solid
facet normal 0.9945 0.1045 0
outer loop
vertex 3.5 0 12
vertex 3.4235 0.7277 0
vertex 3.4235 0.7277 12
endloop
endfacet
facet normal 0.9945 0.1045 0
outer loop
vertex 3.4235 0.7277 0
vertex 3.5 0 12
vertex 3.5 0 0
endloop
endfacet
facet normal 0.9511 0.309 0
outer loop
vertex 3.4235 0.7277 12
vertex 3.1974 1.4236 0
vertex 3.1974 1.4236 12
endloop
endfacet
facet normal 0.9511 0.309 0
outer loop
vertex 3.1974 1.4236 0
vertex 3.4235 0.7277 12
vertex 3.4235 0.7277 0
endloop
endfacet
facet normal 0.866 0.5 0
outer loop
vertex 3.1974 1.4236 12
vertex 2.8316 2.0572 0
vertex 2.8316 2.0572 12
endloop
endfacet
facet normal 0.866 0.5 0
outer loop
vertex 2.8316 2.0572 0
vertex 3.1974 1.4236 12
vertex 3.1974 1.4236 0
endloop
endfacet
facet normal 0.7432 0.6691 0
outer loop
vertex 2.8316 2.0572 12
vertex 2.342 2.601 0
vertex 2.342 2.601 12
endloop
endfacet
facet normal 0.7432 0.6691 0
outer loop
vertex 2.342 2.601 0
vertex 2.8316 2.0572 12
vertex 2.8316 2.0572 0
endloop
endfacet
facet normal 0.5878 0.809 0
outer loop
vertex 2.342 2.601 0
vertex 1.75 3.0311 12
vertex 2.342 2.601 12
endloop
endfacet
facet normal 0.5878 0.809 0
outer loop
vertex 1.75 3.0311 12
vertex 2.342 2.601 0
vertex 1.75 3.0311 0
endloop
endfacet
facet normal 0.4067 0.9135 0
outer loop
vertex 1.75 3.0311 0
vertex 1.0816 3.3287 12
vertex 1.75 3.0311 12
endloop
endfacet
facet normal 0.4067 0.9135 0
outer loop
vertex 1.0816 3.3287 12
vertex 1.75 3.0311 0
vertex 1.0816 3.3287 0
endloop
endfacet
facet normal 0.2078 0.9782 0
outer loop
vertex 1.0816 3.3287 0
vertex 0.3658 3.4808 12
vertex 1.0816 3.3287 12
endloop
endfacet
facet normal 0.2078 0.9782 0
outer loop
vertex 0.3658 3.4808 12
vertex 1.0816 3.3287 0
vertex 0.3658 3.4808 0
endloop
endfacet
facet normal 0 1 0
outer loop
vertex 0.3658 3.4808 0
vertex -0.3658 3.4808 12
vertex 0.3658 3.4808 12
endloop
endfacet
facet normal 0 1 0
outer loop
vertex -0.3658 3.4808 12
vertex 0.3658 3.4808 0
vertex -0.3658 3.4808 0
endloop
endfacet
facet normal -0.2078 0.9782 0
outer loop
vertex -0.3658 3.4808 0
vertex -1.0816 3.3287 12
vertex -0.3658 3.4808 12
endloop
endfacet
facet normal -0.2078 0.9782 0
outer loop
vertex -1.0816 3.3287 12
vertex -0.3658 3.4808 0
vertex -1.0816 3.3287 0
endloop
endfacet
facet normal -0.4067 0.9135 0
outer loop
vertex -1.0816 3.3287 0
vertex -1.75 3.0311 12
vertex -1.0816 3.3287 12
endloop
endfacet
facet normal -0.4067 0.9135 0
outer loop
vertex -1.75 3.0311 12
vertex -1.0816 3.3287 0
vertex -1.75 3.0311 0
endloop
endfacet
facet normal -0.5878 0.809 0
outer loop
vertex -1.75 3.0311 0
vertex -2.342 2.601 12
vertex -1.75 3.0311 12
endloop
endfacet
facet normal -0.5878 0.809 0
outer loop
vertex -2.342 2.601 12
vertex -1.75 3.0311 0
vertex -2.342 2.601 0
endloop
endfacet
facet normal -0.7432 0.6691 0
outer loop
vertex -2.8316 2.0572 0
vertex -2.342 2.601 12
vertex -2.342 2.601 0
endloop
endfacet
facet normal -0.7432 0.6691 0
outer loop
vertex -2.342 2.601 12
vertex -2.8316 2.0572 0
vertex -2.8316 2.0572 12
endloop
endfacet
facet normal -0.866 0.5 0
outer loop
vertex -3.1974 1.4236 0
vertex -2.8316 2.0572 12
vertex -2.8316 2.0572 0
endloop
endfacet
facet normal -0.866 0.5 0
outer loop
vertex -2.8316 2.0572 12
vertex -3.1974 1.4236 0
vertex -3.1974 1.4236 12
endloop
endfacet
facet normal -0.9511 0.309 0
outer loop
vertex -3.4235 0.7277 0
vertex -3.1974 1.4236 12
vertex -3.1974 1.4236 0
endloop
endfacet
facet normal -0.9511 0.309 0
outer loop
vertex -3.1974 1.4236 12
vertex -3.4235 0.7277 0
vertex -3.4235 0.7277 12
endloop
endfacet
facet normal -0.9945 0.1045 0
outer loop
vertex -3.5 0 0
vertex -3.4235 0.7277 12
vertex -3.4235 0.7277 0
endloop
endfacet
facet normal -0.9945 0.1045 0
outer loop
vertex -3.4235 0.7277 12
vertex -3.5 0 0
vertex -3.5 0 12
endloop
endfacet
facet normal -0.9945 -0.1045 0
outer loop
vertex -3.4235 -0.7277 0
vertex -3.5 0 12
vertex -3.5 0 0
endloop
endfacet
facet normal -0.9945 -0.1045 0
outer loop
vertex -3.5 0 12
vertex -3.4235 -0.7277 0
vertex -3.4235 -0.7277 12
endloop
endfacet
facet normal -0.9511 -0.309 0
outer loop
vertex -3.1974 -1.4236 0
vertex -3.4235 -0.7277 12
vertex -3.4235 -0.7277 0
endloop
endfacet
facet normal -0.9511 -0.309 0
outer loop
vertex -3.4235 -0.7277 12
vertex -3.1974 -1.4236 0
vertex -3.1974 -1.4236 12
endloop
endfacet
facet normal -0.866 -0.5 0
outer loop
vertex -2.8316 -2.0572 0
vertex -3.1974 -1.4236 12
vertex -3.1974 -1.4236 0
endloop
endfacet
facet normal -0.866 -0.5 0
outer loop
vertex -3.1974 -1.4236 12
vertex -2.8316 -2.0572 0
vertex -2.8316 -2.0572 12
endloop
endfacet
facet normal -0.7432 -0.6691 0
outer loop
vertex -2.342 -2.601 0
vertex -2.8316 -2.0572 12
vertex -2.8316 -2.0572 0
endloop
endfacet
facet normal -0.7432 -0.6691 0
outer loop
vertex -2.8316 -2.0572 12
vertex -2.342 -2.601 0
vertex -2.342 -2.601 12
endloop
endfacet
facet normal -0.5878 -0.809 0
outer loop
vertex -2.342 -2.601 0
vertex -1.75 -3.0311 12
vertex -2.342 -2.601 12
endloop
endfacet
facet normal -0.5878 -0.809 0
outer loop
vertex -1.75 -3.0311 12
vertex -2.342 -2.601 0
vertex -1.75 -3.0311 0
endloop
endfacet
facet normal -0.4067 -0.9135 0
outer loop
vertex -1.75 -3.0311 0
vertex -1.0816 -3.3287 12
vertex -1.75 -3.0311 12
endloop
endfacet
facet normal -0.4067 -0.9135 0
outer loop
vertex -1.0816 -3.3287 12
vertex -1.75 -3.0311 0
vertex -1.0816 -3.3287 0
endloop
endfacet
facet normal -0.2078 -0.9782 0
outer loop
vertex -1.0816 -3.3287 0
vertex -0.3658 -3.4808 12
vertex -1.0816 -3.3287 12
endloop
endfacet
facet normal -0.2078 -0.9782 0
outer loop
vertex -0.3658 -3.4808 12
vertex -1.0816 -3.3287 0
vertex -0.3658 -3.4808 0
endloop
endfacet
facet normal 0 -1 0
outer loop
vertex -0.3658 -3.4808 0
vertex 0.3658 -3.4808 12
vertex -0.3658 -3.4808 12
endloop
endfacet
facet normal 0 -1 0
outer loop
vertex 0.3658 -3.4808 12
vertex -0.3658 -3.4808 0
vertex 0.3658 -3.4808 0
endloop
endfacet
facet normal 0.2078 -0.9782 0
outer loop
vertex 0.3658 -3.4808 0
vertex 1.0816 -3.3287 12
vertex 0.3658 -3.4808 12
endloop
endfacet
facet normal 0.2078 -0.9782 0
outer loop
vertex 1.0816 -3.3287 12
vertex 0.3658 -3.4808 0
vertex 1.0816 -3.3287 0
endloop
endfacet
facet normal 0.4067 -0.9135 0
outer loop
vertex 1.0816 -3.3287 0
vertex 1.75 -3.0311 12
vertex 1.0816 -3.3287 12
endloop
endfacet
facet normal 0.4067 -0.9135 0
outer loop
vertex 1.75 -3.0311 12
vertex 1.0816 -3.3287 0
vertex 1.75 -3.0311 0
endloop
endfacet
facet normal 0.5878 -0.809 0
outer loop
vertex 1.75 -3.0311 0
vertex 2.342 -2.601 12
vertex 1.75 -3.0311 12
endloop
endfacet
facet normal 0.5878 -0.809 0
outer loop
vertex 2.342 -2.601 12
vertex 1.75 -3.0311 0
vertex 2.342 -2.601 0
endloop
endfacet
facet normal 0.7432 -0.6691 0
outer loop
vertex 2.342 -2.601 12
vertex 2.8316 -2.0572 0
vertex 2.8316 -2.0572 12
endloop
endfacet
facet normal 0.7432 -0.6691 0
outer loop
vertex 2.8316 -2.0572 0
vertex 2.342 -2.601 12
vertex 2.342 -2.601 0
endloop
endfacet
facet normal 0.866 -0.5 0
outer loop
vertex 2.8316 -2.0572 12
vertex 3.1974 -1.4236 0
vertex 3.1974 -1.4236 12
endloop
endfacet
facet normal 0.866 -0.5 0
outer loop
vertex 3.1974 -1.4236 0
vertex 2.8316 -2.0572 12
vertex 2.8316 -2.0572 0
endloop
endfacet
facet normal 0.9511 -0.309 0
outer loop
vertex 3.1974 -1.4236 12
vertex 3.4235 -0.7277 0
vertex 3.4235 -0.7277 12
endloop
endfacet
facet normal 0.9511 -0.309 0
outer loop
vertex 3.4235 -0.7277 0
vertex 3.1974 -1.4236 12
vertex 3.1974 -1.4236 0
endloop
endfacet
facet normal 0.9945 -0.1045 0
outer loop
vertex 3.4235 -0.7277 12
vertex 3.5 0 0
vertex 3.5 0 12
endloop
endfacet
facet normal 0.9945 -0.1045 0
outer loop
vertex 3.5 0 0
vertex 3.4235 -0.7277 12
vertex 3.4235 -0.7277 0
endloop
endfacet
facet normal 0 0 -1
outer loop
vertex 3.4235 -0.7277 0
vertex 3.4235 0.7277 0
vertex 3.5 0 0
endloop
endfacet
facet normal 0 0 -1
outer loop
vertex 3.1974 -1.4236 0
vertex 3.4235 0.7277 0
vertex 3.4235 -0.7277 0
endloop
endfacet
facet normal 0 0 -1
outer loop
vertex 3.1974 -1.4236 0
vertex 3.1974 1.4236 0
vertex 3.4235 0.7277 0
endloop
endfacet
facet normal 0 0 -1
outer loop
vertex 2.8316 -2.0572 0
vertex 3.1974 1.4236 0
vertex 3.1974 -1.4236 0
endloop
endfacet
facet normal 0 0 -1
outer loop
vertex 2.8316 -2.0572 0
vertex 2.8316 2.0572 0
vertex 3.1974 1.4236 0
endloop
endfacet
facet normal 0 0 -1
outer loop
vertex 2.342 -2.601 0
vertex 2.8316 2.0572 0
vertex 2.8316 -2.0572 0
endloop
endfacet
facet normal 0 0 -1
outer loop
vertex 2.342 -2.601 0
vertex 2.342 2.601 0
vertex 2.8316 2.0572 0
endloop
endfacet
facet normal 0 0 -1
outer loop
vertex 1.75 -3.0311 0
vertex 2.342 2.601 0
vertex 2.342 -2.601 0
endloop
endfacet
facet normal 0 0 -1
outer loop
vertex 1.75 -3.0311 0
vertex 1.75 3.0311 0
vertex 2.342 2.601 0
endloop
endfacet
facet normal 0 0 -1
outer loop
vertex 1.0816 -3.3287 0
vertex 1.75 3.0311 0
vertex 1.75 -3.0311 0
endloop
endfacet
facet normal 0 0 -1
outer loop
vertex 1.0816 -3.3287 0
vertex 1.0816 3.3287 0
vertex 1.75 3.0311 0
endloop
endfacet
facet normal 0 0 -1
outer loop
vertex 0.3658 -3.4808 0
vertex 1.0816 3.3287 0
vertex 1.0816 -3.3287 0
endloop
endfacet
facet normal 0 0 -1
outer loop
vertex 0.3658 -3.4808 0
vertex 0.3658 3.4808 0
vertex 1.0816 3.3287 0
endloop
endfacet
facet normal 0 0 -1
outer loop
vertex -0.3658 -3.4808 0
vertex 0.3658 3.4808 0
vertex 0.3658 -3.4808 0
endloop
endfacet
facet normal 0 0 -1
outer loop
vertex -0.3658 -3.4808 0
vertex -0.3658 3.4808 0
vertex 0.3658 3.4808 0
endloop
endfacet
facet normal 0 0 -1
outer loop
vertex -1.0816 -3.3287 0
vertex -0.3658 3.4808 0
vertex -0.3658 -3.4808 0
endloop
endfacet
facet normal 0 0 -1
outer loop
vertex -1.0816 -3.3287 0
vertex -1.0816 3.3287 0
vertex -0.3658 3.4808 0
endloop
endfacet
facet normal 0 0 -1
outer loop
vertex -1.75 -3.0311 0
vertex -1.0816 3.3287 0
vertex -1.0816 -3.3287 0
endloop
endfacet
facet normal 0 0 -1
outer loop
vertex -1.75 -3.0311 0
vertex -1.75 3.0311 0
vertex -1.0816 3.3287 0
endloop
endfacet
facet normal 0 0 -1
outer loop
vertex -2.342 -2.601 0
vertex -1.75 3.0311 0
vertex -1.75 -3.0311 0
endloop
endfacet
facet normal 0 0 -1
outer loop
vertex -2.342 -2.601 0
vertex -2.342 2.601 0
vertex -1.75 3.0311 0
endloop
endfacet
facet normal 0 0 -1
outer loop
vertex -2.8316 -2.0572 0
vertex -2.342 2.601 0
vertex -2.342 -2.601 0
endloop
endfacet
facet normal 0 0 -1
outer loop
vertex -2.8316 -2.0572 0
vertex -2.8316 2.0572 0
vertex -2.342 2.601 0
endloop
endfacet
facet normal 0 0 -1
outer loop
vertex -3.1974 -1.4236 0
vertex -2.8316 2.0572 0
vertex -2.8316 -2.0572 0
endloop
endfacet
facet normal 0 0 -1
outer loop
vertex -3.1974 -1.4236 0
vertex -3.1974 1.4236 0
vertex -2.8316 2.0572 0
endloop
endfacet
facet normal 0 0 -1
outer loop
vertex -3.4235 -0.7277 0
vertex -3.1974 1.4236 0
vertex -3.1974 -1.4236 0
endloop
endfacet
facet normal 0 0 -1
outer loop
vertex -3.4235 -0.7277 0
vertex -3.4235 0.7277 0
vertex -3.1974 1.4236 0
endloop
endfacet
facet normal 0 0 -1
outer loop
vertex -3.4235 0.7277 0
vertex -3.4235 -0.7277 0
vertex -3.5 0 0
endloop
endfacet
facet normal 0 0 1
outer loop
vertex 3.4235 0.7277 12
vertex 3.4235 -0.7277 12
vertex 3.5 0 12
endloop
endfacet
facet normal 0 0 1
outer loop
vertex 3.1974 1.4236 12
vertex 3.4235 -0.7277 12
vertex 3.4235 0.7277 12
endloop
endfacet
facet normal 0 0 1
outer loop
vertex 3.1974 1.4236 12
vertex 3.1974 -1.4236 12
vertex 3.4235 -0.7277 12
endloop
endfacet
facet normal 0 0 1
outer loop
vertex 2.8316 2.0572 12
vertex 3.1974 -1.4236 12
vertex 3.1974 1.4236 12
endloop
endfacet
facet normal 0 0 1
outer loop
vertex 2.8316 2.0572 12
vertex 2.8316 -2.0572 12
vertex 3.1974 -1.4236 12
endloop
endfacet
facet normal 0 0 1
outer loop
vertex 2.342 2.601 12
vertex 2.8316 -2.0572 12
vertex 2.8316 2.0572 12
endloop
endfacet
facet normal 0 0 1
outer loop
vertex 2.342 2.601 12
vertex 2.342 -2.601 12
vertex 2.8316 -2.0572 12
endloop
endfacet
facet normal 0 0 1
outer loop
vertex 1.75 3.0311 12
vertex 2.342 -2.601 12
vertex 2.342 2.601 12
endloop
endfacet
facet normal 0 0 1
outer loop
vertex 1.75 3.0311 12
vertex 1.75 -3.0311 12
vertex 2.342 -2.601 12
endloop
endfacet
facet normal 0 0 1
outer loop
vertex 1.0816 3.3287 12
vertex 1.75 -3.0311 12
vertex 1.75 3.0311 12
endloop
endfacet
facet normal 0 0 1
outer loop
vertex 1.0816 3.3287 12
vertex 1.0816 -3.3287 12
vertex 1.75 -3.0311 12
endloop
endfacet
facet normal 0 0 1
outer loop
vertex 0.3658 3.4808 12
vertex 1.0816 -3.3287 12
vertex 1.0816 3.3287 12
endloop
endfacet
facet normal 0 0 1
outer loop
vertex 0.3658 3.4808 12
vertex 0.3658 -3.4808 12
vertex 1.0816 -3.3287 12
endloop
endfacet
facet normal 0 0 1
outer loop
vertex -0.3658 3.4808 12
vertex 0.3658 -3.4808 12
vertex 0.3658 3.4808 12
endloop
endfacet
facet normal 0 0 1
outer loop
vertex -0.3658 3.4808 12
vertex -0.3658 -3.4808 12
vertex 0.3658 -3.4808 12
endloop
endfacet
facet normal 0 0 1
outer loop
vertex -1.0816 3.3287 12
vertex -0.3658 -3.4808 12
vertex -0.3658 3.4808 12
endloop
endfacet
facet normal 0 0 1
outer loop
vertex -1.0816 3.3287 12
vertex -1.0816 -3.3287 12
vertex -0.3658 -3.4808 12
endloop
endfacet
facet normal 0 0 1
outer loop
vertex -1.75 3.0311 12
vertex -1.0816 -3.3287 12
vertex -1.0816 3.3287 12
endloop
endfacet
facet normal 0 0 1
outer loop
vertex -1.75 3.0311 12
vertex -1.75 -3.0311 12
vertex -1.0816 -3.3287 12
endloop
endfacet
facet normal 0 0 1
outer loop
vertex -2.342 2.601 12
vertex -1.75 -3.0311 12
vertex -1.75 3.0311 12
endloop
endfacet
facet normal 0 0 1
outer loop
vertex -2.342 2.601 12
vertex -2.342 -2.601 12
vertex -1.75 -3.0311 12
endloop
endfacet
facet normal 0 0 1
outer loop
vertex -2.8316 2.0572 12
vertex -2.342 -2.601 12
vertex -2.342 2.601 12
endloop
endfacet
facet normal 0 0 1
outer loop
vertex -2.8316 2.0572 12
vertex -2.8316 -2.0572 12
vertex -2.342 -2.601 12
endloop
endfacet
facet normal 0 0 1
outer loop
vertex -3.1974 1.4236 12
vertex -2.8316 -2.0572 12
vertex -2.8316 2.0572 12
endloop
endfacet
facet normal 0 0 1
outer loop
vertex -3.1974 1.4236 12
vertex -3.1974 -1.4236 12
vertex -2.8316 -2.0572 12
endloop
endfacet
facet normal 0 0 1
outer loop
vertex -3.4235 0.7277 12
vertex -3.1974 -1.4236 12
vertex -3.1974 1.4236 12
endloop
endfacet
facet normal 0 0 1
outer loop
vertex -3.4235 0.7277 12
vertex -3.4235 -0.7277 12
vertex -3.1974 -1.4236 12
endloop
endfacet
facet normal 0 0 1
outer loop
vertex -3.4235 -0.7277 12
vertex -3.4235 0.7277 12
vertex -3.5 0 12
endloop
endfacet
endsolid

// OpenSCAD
// Simple cylinder plugs for the misumi blind corner screw holes
//
// Copyright (C) 2021  Kevin O'Connor <kevin@koconnor.net>
//
// This file may be distributed under the terms of the GNU GPLv3 license.

plug_dia = 7.0;
plug_height = 12.0;
$fs = 0.5;

module plug() {
    cylinder(d=plug_dia, h=plug_height);
}

plug();
